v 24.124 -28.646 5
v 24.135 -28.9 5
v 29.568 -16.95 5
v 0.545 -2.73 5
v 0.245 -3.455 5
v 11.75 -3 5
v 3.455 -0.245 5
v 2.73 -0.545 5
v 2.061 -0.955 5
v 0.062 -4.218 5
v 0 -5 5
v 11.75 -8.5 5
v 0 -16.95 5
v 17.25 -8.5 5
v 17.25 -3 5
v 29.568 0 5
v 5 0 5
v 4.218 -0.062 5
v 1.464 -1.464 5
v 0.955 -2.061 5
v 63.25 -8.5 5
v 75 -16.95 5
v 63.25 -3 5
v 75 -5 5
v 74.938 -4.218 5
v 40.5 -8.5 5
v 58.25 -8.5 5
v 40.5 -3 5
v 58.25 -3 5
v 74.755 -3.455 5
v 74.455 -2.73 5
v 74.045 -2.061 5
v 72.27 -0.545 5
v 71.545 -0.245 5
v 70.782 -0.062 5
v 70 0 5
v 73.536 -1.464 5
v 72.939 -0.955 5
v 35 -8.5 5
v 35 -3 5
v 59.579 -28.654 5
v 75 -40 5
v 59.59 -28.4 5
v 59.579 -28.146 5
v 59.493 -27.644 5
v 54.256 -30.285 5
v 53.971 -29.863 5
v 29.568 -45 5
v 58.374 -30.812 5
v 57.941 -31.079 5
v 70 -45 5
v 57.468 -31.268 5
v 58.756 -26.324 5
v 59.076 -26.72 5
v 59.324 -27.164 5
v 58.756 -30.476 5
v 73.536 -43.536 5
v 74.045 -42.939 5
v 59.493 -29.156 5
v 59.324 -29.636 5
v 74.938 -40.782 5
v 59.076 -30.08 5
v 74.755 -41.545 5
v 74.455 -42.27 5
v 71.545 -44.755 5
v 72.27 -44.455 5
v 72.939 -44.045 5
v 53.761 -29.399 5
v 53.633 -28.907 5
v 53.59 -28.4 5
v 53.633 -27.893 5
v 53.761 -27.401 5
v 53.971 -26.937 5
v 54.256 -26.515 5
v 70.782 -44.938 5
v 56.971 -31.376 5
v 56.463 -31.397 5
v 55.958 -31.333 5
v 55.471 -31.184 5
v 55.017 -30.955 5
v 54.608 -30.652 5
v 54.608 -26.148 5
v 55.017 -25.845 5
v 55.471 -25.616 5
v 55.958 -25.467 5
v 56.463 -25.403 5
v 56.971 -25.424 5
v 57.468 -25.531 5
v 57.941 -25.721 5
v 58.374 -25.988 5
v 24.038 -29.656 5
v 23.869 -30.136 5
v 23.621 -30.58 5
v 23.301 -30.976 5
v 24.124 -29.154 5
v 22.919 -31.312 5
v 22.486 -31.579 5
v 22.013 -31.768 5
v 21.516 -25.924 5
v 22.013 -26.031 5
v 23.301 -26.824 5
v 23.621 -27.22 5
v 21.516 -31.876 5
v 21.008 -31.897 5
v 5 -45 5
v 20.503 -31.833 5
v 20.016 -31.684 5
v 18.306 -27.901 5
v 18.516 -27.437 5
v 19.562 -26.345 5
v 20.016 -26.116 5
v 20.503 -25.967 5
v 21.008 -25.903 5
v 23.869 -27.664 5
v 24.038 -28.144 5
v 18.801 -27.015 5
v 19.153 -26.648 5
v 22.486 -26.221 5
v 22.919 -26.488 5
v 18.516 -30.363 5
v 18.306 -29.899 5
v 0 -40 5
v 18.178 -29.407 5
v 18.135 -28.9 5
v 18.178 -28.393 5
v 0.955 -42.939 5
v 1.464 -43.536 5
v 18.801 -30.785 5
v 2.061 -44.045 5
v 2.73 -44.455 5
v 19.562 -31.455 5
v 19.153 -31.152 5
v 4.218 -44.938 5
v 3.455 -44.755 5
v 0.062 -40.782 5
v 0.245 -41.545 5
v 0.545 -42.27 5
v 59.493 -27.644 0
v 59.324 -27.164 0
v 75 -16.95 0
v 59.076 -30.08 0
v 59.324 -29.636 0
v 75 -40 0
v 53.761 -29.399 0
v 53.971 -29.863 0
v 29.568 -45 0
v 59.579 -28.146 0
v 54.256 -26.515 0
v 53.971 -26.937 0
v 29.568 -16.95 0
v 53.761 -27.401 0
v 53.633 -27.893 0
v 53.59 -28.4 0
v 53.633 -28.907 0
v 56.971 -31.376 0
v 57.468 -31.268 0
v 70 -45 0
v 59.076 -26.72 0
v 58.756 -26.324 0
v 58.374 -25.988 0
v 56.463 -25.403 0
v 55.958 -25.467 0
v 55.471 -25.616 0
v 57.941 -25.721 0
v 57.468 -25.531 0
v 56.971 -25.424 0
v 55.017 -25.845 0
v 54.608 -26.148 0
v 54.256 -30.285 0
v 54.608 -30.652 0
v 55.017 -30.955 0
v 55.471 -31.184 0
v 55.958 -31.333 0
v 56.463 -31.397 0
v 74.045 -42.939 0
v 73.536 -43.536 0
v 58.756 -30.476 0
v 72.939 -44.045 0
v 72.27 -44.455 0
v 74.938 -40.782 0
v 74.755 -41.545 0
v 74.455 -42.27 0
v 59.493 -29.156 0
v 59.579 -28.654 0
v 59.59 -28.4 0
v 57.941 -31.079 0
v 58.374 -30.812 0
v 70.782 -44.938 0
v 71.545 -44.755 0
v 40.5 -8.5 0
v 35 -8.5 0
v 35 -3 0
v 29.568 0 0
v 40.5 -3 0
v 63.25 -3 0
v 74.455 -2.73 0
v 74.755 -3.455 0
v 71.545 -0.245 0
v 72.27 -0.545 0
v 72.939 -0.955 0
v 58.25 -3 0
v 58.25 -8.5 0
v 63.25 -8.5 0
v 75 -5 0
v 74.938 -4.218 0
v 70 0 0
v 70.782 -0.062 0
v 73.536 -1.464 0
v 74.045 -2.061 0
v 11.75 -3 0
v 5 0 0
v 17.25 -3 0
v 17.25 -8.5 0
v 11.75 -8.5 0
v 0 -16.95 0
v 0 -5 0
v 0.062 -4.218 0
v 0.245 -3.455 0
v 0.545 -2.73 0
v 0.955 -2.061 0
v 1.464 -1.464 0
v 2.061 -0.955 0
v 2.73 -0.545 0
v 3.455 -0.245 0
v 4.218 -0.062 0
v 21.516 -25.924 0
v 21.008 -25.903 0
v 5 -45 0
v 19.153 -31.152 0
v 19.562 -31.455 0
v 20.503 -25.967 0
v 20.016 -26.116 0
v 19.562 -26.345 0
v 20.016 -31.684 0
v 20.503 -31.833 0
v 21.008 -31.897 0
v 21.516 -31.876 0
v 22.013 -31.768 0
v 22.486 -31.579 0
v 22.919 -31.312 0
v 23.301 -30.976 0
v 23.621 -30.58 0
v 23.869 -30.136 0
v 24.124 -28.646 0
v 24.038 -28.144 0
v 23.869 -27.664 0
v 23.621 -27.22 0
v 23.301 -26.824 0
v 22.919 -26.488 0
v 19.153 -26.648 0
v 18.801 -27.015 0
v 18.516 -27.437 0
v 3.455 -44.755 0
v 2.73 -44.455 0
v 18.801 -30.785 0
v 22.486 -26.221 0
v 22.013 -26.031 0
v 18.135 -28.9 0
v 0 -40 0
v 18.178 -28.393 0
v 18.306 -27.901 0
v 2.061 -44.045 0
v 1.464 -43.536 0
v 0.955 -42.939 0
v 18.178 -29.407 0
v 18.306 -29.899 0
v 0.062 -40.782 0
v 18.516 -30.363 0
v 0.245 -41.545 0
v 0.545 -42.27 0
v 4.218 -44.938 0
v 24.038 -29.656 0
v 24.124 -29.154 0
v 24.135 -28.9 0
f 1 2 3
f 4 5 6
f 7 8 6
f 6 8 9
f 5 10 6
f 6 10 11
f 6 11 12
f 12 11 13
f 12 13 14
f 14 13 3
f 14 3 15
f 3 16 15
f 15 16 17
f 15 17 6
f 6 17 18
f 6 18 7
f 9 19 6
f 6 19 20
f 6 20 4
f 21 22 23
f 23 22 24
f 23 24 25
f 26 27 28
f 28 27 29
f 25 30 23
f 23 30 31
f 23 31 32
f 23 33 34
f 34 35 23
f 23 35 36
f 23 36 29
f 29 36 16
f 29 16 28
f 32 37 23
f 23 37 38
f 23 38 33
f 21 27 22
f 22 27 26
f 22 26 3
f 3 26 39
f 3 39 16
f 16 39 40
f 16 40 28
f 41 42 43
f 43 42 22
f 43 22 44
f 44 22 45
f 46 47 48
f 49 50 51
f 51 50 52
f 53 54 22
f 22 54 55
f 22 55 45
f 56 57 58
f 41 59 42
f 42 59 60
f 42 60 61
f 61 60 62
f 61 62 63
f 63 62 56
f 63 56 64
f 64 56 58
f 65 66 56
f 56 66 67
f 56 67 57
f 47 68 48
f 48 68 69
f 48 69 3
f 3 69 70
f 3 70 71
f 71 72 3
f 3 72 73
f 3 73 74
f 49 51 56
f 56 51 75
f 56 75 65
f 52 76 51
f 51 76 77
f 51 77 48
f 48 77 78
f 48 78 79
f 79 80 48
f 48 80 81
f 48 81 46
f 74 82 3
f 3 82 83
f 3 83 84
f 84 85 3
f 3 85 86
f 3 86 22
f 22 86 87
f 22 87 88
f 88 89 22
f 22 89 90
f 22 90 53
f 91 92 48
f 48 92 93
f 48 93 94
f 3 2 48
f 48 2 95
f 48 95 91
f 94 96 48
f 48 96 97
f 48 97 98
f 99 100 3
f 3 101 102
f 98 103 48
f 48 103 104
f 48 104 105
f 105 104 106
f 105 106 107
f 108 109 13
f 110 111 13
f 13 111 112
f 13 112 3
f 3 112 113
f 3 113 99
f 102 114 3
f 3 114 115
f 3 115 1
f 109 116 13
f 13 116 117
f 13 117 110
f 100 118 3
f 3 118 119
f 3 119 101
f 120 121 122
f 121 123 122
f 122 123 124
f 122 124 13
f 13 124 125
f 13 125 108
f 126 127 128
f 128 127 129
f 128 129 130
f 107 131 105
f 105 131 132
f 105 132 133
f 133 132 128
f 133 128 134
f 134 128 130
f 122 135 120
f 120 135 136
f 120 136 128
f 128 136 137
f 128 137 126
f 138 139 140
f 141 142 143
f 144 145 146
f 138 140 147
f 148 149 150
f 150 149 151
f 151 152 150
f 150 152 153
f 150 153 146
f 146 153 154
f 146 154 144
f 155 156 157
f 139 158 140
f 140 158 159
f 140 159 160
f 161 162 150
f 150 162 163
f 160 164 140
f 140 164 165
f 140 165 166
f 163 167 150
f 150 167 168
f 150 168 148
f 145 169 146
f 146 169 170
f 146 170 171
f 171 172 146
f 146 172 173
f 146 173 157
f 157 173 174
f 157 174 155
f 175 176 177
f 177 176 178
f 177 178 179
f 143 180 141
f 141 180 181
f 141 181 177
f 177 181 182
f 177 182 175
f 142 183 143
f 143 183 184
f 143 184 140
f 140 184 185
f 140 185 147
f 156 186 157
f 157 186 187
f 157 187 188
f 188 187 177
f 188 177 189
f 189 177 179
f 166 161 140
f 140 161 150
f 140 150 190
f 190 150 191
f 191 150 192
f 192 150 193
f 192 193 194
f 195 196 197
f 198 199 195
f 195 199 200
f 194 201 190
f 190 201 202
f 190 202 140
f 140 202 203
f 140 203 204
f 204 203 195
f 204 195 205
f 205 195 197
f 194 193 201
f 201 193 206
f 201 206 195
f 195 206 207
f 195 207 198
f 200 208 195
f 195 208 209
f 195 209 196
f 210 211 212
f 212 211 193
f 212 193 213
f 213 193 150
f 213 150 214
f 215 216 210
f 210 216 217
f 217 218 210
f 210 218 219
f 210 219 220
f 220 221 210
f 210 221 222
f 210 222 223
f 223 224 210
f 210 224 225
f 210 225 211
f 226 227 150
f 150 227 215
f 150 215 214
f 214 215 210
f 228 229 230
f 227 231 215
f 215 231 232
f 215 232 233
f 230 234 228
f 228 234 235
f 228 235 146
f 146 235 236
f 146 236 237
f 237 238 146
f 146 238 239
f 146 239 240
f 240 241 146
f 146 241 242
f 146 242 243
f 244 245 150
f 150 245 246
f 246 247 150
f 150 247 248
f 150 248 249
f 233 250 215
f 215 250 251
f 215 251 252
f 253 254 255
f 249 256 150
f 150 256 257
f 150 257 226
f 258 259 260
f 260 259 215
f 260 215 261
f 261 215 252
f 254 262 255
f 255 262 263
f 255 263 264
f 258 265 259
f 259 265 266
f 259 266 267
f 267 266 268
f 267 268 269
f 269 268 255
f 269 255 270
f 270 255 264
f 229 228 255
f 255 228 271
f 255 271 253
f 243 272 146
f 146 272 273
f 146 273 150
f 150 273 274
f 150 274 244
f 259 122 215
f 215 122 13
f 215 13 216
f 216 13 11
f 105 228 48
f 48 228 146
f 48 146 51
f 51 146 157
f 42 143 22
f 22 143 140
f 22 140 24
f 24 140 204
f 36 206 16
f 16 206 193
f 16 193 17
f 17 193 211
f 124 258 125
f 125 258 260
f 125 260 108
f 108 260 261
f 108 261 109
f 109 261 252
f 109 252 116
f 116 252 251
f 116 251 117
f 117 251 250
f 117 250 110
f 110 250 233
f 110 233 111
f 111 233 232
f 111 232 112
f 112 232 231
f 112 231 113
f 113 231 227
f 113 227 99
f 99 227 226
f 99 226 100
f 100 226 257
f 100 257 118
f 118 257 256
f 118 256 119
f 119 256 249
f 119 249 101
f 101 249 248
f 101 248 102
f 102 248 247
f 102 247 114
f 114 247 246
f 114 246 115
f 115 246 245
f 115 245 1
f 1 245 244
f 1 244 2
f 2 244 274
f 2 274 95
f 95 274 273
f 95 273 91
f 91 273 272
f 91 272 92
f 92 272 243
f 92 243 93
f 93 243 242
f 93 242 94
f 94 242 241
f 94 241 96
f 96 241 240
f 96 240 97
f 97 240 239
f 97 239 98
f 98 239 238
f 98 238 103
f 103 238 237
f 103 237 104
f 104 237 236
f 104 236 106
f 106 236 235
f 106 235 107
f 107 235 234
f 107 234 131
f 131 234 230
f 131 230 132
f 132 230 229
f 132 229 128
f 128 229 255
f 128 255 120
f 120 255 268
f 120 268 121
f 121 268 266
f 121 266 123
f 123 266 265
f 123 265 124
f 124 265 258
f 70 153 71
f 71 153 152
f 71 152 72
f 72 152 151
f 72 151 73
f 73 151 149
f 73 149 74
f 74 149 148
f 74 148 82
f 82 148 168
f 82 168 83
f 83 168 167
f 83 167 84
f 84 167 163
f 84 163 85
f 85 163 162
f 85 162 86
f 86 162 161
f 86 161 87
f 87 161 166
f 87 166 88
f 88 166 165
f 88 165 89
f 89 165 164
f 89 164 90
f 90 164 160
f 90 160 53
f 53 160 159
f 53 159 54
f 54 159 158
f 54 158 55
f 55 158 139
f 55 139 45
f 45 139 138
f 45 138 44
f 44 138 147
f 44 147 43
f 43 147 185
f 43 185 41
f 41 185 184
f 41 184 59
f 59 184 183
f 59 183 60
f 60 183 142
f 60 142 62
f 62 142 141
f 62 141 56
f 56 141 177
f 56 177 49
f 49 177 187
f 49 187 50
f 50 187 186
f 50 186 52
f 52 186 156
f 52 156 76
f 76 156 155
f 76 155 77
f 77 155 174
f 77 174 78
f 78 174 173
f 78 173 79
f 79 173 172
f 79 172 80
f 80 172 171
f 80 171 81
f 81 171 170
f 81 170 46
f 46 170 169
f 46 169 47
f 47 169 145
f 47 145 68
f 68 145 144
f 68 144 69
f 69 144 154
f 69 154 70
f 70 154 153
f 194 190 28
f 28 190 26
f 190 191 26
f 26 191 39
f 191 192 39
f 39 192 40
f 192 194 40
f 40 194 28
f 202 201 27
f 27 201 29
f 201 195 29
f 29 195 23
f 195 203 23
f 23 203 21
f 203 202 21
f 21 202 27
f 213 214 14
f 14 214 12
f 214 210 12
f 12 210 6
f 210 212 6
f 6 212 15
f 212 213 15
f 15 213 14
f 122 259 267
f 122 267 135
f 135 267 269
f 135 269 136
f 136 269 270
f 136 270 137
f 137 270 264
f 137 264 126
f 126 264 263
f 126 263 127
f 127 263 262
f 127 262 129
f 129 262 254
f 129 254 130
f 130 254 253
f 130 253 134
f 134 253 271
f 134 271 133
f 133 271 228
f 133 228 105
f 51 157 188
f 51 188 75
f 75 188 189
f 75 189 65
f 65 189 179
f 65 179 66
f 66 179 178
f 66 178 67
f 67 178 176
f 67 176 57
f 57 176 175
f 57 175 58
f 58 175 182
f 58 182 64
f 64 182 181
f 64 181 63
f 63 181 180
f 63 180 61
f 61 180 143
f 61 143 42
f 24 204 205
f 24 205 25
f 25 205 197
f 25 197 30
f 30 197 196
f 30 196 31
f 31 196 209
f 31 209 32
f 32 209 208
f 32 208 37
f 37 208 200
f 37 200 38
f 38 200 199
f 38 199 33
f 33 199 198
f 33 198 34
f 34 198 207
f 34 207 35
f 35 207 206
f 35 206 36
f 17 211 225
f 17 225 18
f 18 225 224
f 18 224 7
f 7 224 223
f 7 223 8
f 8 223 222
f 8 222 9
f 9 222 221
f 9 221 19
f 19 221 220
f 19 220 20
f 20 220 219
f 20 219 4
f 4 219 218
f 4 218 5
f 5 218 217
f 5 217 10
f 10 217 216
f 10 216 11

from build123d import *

# Parameters (mm, degrees)
SKETCH_1_W          = 75
SKETCH_1_H          = 45
SKETCH_1_R          = 3
EXTRUDE_1_DEPTH     = 5
SKETCH_2_W          = 5
SKETCH_2_H          = 5.5
SKETCH_2_W_2        = 5.5
CUT_EXTRUDE_1_DEPTH = 5
FILLET_1_R          = 5


with BuildPart() as part:
    # 草图1 → 凸台-拉伸1 (new body)
    with BuildSketch(Plane.XY):
        with Locations((37.5, -22.5)):
            Rectangle(SKETCH_1_W, SKETCH_1_H)
        with Locations((21.13500001, -28.900000005)):
            Circle(SKETCH_1_R, mode=Mode.SUBTRACT)
        with Locations((56.59, -28.4)):
            Circle(SKETCH_1_R, mode=Mode.SUBTRACT)
    extrude(amount=EXTRUDE_1_DEPTH)

    # 草图2 → 切除-拉伸1 (cut)
    with BuildSketch(Plane.XY.offset(5)):
        Polygon((40.5, -8.5), (40.5, -3), (37.5, -3), (35, -3), (35, -8.5), align=None)
        with Locations((60.75, -5.75)):
            Rectangle(SKETCH_2_W, SKETCH_2_H)
        with Locations((14.5, -5.75)):
            Rectangle(SKETCH_2_W_2, SKETCH_2_H)
    extrude(amount=-CUT_EXTRUDE_1_DEPTH, mode=Mode.SUBTRACT)

    # 圆角1
    fillet_1_edges = [part.edges().sort_by_distance(p)[0] for p in [
        (0, 0, 2.5),
        (75, 0, 2.5),
        (75, -45, 2.5),
        (0, -45, 2.5),
    ]]
    fillet(fillet_1_edges, radius=FILLET_1_R)


solid = part.part
